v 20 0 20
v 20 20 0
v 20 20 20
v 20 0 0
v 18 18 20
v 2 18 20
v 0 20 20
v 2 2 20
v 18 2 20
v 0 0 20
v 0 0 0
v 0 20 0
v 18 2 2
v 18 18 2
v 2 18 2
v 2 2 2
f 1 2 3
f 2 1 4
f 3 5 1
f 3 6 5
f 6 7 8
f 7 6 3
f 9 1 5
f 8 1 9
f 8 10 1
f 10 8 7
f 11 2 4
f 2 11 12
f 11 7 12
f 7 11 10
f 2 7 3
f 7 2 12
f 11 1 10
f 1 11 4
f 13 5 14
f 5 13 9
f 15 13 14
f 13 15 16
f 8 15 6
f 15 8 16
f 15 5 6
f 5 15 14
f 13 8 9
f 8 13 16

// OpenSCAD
difference() {
  cube(20);
  translate([2,2,2])
  cube([16,16,20]);
}
